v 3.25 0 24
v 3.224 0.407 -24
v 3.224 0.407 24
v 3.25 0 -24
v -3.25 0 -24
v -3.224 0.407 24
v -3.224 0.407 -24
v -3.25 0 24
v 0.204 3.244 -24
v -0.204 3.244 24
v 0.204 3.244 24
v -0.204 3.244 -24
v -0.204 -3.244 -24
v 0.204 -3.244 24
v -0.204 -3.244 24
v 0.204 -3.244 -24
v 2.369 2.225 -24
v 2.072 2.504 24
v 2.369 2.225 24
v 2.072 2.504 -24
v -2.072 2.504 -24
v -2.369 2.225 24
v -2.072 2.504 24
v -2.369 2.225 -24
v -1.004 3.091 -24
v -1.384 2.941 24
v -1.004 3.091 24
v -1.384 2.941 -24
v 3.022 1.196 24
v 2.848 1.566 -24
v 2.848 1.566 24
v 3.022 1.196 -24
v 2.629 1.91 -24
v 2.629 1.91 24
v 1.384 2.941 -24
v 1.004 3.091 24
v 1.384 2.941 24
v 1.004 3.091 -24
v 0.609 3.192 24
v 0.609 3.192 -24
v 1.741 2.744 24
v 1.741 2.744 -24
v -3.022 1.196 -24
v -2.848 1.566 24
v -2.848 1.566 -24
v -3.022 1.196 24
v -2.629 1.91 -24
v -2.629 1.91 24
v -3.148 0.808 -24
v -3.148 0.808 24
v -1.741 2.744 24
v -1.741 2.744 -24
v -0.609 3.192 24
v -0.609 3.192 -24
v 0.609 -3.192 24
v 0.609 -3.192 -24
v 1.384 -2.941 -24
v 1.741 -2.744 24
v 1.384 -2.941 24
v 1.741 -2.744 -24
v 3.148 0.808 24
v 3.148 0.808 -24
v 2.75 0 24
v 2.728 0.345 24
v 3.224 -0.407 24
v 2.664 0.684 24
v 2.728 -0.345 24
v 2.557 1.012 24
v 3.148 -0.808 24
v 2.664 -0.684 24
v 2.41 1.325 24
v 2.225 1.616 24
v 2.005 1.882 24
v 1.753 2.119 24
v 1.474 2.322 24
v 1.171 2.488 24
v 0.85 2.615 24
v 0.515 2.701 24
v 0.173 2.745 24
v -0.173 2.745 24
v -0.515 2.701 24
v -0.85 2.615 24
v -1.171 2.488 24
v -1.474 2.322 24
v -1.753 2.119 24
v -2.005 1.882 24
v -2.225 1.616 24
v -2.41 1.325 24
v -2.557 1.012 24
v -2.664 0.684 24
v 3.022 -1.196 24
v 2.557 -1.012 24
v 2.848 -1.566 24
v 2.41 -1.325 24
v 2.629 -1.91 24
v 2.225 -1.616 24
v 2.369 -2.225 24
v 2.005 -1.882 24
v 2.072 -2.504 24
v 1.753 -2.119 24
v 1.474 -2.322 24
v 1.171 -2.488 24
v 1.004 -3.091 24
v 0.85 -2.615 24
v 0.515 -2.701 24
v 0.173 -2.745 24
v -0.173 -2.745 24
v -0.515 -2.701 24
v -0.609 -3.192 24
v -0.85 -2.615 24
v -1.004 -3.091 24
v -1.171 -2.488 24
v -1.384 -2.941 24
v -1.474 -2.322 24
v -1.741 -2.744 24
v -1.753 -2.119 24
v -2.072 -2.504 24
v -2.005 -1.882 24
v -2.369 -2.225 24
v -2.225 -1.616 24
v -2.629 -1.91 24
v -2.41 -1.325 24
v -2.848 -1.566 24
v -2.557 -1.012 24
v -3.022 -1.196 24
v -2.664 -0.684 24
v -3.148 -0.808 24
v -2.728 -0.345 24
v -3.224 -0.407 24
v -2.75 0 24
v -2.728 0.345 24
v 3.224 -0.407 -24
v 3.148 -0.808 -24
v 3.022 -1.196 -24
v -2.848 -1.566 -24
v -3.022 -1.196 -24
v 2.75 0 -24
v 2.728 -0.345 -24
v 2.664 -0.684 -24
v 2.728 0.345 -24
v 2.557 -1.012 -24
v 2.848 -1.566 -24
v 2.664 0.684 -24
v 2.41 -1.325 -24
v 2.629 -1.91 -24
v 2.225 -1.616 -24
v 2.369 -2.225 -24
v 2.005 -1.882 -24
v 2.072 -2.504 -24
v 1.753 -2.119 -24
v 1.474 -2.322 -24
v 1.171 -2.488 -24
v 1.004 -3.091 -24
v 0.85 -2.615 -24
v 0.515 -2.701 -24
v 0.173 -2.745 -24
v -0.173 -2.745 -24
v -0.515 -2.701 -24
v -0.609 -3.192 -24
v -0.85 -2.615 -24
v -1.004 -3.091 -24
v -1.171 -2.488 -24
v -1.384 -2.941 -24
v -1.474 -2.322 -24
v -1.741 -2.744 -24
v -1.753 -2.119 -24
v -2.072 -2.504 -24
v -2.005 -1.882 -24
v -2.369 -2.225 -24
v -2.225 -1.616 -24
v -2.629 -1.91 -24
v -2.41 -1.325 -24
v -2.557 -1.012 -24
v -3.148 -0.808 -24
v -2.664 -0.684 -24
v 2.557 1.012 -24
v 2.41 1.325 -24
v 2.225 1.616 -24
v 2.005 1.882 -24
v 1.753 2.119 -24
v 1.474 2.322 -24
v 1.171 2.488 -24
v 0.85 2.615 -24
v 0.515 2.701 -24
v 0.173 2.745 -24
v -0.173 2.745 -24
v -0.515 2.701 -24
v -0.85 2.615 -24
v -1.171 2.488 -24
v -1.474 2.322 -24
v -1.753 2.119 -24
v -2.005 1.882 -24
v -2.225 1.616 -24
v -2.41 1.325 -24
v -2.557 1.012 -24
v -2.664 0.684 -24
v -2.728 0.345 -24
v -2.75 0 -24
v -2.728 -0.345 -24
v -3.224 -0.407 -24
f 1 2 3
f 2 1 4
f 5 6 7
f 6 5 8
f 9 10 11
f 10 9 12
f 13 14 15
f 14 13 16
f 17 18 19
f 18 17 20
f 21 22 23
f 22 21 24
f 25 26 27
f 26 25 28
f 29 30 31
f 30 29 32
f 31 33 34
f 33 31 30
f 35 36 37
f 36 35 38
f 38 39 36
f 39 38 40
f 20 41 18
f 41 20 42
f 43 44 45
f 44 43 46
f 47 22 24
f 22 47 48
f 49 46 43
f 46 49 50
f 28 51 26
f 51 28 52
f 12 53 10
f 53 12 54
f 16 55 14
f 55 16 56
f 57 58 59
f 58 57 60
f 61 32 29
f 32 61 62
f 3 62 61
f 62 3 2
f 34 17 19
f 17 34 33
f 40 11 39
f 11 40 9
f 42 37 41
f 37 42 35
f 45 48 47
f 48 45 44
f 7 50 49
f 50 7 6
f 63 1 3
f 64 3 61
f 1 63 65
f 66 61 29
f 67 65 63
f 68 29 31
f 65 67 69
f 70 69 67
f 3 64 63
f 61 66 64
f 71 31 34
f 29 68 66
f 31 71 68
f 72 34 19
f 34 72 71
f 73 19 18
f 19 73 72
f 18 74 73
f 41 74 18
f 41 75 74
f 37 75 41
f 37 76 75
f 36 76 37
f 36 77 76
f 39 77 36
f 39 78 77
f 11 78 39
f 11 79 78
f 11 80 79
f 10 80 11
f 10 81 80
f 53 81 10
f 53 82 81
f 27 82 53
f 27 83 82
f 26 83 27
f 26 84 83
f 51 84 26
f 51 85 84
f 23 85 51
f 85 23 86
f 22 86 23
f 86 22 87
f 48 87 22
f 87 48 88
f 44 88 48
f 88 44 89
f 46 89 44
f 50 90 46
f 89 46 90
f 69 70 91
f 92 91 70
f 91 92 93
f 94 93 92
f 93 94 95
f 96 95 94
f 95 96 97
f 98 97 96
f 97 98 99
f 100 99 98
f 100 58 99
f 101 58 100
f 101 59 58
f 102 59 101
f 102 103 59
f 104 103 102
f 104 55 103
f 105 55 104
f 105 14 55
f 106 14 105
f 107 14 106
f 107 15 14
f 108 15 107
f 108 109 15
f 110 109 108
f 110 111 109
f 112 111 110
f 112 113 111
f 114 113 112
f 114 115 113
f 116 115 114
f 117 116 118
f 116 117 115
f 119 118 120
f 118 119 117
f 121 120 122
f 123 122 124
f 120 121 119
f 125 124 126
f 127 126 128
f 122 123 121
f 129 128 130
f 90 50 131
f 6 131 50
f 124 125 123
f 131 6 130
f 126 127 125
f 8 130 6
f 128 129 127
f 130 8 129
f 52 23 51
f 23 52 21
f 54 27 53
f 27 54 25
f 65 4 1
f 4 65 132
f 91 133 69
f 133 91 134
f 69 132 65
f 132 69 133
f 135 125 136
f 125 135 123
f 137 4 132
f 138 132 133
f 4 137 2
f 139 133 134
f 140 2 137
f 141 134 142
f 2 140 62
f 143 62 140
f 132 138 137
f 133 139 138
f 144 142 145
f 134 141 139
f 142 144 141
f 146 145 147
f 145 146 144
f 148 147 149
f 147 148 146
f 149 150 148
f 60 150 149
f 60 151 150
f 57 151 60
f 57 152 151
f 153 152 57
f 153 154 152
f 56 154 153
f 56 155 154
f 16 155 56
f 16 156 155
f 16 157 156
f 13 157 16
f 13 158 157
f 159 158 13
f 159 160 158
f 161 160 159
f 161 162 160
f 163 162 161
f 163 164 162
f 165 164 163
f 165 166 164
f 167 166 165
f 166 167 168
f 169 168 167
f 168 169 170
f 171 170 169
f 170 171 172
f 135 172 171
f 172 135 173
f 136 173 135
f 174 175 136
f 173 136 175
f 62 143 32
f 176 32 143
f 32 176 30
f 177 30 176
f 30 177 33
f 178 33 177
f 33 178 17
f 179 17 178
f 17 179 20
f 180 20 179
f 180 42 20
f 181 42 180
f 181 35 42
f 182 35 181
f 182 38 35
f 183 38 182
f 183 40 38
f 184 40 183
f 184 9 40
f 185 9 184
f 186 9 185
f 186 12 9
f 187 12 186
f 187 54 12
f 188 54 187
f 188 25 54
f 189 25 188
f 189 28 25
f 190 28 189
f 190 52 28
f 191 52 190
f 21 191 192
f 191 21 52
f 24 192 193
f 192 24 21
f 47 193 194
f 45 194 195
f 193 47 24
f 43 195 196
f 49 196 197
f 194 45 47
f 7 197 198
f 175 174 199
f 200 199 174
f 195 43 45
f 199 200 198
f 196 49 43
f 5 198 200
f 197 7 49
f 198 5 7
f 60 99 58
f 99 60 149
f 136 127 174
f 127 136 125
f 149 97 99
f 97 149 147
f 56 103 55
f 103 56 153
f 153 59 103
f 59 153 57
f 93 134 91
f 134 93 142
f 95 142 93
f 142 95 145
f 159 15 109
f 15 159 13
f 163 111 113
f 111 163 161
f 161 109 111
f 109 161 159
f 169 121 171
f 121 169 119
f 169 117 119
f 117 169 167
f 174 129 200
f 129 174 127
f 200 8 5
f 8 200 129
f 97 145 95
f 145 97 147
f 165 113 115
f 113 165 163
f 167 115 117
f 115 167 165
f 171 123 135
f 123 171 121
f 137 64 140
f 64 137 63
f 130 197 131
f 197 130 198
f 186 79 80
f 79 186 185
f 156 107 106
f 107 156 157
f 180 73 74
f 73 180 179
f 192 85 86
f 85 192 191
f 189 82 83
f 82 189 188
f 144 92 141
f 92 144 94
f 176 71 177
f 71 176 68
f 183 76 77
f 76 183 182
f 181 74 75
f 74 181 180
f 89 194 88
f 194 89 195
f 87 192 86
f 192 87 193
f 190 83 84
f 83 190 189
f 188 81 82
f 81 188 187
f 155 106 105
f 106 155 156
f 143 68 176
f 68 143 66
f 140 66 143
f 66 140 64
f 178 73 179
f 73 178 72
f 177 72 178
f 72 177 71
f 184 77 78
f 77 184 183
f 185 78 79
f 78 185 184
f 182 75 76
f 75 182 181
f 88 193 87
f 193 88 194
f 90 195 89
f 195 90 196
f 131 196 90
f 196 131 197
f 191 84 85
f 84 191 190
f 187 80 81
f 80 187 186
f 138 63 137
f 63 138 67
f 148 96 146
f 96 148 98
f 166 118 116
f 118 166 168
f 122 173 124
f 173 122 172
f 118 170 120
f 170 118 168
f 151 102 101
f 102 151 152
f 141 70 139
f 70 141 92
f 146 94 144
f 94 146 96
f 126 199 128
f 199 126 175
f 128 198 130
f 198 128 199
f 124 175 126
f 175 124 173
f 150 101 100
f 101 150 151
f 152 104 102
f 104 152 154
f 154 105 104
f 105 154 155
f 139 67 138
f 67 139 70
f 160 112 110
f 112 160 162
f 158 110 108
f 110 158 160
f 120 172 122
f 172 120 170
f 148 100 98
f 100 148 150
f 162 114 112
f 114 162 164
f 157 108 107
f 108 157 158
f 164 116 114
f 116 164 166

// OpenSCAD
$fn = 50;


difference() {
	union() {
		translate(v = [0, 0, -24.0000000000]) {
			cylinder(h = 48, r = 3.2500000000);
		}
	}
	union() {
		translate(v = [0, 0, -100.0000000000]) {
			cylinder(h = 200, r = 2.7500000000);
		}
	}
}
